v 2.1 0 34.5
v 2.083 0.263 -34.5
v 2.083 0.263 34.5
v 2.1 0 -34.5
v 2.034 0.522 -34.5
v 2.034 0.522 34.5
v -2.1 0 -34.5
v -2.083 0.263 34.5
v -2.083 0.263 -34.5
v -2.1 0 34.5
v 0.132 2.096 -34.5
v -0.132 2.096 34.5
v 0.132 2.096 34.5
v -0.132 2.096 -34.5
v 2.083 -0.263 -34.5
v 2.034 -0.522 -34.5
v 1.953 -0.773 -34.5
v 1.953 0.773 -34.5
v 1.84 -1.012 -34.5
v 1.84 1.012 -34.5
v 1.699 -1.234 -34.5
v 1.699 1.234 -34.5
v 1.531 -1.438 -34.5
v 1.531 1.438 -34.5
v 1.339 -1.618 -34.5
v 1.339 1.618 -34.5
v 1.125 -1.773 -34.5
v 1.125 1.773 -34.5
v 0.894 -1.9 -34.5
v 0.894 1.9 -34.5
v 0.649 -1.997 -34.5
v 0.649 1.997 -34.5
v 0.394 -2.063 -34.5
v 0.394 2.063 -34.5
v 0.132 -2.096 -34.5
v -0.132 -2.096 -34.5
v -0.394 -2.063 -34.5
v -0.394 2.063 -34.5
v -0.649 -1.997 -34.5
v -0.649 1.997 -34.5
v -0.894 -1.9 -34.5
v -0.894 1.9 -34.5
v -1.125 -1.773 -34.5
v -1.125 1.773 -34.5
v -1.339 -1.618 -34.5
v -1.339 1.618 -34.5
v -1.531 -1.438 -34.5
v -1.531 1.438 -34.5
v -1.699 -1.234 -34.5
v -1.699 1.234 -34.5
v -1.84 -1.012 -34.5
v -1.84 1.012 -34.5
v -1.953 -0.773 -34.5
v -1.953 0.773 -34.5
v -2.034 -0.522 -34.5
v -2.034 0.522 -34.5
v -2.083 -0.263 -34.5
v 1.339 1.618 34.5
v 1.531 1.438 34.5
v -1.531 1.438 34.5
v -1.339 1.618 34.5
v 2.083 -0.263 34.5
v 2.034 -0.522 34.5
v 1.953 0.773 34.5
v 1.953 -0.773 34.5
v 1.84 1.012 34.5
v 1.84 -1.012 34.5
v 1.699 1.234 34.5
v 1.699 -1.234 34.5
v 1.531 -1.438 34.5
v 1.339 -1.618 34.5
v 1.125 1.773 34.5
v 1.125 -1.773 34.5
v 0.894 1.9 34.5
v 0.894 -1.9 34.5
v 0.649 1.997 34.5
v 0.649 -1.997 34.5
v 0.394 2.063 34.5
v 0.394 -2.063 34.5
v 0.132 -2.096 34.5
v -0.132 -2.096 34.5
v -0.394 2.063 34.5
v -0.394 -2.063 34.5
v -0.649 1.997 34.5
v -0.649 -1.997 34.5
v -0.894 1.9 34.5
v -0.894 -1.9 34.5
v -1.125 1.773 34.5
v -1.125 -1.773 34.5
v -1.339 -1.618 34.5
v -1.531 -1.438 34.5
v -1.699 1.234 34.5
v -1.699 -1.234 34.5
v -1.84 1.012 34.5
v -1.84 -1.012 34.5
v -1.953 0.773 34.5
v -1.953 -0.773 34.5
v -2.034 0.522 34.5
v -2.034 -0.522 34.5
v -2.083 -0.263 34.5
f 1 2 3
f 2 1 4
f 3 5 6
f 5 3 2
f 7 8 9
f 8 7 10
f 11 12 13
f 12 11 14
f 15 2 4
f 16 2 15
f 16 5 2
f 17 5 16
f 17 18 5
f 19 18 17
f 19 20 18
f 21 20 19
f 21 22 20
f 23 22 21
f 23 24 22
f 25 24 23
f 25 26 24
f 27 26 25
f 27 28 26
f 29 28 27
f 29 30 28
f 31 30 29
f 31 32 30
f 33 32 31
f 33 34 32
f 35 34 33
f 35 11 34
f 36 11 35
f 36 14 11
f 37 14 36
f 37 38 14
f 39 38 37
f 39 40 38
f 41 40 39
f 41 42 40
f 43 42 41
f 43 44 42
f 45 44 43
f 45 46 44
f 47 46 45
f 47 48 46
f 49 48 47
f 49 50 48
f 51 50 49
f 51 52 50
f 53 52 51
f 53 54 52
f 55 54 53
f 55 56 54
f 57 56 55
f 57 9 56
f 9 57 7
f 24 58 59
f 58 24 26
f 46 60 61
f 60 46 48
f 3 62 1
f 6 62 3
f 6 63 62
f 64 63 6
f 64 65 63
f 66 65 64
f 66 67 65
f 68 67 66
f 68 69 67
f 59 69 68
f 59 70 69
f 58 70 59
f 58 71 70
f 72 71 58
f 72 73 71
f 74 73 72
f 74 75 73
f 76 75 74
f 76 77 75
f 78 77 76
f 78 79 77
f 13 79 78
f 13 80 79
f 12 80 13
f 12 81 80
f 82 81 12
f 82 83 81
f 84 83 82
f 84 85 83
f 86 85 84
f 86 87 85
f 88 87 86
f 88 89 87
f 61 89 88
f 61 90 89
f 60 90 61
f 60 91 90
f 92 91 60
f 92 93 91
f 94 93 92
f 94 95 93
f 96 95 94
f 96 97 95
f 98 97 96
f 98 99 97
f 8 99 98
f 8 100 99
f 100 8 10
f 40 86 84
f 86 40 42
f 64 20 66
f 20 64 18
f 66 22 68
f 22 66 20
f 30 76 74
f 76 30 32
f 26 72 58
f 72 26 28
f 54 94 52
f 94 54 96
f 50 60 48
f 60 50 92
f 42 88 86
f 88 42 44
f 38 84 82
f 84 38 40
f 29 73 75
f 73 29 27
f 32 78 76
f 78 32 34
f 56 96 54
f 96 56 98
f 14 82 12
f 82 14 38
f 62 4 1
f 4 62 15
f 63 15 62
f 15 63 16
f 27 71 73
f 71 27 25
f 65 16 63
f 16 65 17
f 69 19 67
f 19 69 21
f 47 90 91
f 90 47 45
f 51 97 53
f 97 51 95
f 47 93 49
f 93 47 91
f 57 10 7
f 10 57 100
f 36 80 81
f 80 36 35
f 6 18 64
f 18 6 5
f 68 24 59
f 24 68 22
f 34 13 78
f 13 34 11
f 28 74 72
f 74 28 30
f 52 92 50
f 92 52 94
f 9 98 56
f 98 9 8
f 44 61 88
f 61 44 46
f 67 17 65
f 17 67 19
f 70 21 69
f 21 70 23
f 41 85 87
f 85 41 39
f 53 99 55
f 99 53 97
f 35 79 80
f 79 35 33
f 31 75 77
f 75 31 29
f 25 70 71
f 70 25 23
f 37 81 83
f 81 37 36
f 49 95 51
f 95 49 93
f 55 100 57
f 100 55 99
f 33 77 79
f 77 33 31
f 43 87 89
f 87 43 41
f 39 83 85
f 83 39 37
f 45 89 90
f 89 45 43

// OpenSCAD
$fn = 50;


difference() {
	union() {
		translate(v = [0, 0, -34.5000000000]) {
			cylinder(h = 69, r = 2.1000000000);
		}
	}
	union() {
		translate(v = [0, 0, -100.0000000000]) {
			cylinder(h = 200, r = 0);
		}
	}
}
